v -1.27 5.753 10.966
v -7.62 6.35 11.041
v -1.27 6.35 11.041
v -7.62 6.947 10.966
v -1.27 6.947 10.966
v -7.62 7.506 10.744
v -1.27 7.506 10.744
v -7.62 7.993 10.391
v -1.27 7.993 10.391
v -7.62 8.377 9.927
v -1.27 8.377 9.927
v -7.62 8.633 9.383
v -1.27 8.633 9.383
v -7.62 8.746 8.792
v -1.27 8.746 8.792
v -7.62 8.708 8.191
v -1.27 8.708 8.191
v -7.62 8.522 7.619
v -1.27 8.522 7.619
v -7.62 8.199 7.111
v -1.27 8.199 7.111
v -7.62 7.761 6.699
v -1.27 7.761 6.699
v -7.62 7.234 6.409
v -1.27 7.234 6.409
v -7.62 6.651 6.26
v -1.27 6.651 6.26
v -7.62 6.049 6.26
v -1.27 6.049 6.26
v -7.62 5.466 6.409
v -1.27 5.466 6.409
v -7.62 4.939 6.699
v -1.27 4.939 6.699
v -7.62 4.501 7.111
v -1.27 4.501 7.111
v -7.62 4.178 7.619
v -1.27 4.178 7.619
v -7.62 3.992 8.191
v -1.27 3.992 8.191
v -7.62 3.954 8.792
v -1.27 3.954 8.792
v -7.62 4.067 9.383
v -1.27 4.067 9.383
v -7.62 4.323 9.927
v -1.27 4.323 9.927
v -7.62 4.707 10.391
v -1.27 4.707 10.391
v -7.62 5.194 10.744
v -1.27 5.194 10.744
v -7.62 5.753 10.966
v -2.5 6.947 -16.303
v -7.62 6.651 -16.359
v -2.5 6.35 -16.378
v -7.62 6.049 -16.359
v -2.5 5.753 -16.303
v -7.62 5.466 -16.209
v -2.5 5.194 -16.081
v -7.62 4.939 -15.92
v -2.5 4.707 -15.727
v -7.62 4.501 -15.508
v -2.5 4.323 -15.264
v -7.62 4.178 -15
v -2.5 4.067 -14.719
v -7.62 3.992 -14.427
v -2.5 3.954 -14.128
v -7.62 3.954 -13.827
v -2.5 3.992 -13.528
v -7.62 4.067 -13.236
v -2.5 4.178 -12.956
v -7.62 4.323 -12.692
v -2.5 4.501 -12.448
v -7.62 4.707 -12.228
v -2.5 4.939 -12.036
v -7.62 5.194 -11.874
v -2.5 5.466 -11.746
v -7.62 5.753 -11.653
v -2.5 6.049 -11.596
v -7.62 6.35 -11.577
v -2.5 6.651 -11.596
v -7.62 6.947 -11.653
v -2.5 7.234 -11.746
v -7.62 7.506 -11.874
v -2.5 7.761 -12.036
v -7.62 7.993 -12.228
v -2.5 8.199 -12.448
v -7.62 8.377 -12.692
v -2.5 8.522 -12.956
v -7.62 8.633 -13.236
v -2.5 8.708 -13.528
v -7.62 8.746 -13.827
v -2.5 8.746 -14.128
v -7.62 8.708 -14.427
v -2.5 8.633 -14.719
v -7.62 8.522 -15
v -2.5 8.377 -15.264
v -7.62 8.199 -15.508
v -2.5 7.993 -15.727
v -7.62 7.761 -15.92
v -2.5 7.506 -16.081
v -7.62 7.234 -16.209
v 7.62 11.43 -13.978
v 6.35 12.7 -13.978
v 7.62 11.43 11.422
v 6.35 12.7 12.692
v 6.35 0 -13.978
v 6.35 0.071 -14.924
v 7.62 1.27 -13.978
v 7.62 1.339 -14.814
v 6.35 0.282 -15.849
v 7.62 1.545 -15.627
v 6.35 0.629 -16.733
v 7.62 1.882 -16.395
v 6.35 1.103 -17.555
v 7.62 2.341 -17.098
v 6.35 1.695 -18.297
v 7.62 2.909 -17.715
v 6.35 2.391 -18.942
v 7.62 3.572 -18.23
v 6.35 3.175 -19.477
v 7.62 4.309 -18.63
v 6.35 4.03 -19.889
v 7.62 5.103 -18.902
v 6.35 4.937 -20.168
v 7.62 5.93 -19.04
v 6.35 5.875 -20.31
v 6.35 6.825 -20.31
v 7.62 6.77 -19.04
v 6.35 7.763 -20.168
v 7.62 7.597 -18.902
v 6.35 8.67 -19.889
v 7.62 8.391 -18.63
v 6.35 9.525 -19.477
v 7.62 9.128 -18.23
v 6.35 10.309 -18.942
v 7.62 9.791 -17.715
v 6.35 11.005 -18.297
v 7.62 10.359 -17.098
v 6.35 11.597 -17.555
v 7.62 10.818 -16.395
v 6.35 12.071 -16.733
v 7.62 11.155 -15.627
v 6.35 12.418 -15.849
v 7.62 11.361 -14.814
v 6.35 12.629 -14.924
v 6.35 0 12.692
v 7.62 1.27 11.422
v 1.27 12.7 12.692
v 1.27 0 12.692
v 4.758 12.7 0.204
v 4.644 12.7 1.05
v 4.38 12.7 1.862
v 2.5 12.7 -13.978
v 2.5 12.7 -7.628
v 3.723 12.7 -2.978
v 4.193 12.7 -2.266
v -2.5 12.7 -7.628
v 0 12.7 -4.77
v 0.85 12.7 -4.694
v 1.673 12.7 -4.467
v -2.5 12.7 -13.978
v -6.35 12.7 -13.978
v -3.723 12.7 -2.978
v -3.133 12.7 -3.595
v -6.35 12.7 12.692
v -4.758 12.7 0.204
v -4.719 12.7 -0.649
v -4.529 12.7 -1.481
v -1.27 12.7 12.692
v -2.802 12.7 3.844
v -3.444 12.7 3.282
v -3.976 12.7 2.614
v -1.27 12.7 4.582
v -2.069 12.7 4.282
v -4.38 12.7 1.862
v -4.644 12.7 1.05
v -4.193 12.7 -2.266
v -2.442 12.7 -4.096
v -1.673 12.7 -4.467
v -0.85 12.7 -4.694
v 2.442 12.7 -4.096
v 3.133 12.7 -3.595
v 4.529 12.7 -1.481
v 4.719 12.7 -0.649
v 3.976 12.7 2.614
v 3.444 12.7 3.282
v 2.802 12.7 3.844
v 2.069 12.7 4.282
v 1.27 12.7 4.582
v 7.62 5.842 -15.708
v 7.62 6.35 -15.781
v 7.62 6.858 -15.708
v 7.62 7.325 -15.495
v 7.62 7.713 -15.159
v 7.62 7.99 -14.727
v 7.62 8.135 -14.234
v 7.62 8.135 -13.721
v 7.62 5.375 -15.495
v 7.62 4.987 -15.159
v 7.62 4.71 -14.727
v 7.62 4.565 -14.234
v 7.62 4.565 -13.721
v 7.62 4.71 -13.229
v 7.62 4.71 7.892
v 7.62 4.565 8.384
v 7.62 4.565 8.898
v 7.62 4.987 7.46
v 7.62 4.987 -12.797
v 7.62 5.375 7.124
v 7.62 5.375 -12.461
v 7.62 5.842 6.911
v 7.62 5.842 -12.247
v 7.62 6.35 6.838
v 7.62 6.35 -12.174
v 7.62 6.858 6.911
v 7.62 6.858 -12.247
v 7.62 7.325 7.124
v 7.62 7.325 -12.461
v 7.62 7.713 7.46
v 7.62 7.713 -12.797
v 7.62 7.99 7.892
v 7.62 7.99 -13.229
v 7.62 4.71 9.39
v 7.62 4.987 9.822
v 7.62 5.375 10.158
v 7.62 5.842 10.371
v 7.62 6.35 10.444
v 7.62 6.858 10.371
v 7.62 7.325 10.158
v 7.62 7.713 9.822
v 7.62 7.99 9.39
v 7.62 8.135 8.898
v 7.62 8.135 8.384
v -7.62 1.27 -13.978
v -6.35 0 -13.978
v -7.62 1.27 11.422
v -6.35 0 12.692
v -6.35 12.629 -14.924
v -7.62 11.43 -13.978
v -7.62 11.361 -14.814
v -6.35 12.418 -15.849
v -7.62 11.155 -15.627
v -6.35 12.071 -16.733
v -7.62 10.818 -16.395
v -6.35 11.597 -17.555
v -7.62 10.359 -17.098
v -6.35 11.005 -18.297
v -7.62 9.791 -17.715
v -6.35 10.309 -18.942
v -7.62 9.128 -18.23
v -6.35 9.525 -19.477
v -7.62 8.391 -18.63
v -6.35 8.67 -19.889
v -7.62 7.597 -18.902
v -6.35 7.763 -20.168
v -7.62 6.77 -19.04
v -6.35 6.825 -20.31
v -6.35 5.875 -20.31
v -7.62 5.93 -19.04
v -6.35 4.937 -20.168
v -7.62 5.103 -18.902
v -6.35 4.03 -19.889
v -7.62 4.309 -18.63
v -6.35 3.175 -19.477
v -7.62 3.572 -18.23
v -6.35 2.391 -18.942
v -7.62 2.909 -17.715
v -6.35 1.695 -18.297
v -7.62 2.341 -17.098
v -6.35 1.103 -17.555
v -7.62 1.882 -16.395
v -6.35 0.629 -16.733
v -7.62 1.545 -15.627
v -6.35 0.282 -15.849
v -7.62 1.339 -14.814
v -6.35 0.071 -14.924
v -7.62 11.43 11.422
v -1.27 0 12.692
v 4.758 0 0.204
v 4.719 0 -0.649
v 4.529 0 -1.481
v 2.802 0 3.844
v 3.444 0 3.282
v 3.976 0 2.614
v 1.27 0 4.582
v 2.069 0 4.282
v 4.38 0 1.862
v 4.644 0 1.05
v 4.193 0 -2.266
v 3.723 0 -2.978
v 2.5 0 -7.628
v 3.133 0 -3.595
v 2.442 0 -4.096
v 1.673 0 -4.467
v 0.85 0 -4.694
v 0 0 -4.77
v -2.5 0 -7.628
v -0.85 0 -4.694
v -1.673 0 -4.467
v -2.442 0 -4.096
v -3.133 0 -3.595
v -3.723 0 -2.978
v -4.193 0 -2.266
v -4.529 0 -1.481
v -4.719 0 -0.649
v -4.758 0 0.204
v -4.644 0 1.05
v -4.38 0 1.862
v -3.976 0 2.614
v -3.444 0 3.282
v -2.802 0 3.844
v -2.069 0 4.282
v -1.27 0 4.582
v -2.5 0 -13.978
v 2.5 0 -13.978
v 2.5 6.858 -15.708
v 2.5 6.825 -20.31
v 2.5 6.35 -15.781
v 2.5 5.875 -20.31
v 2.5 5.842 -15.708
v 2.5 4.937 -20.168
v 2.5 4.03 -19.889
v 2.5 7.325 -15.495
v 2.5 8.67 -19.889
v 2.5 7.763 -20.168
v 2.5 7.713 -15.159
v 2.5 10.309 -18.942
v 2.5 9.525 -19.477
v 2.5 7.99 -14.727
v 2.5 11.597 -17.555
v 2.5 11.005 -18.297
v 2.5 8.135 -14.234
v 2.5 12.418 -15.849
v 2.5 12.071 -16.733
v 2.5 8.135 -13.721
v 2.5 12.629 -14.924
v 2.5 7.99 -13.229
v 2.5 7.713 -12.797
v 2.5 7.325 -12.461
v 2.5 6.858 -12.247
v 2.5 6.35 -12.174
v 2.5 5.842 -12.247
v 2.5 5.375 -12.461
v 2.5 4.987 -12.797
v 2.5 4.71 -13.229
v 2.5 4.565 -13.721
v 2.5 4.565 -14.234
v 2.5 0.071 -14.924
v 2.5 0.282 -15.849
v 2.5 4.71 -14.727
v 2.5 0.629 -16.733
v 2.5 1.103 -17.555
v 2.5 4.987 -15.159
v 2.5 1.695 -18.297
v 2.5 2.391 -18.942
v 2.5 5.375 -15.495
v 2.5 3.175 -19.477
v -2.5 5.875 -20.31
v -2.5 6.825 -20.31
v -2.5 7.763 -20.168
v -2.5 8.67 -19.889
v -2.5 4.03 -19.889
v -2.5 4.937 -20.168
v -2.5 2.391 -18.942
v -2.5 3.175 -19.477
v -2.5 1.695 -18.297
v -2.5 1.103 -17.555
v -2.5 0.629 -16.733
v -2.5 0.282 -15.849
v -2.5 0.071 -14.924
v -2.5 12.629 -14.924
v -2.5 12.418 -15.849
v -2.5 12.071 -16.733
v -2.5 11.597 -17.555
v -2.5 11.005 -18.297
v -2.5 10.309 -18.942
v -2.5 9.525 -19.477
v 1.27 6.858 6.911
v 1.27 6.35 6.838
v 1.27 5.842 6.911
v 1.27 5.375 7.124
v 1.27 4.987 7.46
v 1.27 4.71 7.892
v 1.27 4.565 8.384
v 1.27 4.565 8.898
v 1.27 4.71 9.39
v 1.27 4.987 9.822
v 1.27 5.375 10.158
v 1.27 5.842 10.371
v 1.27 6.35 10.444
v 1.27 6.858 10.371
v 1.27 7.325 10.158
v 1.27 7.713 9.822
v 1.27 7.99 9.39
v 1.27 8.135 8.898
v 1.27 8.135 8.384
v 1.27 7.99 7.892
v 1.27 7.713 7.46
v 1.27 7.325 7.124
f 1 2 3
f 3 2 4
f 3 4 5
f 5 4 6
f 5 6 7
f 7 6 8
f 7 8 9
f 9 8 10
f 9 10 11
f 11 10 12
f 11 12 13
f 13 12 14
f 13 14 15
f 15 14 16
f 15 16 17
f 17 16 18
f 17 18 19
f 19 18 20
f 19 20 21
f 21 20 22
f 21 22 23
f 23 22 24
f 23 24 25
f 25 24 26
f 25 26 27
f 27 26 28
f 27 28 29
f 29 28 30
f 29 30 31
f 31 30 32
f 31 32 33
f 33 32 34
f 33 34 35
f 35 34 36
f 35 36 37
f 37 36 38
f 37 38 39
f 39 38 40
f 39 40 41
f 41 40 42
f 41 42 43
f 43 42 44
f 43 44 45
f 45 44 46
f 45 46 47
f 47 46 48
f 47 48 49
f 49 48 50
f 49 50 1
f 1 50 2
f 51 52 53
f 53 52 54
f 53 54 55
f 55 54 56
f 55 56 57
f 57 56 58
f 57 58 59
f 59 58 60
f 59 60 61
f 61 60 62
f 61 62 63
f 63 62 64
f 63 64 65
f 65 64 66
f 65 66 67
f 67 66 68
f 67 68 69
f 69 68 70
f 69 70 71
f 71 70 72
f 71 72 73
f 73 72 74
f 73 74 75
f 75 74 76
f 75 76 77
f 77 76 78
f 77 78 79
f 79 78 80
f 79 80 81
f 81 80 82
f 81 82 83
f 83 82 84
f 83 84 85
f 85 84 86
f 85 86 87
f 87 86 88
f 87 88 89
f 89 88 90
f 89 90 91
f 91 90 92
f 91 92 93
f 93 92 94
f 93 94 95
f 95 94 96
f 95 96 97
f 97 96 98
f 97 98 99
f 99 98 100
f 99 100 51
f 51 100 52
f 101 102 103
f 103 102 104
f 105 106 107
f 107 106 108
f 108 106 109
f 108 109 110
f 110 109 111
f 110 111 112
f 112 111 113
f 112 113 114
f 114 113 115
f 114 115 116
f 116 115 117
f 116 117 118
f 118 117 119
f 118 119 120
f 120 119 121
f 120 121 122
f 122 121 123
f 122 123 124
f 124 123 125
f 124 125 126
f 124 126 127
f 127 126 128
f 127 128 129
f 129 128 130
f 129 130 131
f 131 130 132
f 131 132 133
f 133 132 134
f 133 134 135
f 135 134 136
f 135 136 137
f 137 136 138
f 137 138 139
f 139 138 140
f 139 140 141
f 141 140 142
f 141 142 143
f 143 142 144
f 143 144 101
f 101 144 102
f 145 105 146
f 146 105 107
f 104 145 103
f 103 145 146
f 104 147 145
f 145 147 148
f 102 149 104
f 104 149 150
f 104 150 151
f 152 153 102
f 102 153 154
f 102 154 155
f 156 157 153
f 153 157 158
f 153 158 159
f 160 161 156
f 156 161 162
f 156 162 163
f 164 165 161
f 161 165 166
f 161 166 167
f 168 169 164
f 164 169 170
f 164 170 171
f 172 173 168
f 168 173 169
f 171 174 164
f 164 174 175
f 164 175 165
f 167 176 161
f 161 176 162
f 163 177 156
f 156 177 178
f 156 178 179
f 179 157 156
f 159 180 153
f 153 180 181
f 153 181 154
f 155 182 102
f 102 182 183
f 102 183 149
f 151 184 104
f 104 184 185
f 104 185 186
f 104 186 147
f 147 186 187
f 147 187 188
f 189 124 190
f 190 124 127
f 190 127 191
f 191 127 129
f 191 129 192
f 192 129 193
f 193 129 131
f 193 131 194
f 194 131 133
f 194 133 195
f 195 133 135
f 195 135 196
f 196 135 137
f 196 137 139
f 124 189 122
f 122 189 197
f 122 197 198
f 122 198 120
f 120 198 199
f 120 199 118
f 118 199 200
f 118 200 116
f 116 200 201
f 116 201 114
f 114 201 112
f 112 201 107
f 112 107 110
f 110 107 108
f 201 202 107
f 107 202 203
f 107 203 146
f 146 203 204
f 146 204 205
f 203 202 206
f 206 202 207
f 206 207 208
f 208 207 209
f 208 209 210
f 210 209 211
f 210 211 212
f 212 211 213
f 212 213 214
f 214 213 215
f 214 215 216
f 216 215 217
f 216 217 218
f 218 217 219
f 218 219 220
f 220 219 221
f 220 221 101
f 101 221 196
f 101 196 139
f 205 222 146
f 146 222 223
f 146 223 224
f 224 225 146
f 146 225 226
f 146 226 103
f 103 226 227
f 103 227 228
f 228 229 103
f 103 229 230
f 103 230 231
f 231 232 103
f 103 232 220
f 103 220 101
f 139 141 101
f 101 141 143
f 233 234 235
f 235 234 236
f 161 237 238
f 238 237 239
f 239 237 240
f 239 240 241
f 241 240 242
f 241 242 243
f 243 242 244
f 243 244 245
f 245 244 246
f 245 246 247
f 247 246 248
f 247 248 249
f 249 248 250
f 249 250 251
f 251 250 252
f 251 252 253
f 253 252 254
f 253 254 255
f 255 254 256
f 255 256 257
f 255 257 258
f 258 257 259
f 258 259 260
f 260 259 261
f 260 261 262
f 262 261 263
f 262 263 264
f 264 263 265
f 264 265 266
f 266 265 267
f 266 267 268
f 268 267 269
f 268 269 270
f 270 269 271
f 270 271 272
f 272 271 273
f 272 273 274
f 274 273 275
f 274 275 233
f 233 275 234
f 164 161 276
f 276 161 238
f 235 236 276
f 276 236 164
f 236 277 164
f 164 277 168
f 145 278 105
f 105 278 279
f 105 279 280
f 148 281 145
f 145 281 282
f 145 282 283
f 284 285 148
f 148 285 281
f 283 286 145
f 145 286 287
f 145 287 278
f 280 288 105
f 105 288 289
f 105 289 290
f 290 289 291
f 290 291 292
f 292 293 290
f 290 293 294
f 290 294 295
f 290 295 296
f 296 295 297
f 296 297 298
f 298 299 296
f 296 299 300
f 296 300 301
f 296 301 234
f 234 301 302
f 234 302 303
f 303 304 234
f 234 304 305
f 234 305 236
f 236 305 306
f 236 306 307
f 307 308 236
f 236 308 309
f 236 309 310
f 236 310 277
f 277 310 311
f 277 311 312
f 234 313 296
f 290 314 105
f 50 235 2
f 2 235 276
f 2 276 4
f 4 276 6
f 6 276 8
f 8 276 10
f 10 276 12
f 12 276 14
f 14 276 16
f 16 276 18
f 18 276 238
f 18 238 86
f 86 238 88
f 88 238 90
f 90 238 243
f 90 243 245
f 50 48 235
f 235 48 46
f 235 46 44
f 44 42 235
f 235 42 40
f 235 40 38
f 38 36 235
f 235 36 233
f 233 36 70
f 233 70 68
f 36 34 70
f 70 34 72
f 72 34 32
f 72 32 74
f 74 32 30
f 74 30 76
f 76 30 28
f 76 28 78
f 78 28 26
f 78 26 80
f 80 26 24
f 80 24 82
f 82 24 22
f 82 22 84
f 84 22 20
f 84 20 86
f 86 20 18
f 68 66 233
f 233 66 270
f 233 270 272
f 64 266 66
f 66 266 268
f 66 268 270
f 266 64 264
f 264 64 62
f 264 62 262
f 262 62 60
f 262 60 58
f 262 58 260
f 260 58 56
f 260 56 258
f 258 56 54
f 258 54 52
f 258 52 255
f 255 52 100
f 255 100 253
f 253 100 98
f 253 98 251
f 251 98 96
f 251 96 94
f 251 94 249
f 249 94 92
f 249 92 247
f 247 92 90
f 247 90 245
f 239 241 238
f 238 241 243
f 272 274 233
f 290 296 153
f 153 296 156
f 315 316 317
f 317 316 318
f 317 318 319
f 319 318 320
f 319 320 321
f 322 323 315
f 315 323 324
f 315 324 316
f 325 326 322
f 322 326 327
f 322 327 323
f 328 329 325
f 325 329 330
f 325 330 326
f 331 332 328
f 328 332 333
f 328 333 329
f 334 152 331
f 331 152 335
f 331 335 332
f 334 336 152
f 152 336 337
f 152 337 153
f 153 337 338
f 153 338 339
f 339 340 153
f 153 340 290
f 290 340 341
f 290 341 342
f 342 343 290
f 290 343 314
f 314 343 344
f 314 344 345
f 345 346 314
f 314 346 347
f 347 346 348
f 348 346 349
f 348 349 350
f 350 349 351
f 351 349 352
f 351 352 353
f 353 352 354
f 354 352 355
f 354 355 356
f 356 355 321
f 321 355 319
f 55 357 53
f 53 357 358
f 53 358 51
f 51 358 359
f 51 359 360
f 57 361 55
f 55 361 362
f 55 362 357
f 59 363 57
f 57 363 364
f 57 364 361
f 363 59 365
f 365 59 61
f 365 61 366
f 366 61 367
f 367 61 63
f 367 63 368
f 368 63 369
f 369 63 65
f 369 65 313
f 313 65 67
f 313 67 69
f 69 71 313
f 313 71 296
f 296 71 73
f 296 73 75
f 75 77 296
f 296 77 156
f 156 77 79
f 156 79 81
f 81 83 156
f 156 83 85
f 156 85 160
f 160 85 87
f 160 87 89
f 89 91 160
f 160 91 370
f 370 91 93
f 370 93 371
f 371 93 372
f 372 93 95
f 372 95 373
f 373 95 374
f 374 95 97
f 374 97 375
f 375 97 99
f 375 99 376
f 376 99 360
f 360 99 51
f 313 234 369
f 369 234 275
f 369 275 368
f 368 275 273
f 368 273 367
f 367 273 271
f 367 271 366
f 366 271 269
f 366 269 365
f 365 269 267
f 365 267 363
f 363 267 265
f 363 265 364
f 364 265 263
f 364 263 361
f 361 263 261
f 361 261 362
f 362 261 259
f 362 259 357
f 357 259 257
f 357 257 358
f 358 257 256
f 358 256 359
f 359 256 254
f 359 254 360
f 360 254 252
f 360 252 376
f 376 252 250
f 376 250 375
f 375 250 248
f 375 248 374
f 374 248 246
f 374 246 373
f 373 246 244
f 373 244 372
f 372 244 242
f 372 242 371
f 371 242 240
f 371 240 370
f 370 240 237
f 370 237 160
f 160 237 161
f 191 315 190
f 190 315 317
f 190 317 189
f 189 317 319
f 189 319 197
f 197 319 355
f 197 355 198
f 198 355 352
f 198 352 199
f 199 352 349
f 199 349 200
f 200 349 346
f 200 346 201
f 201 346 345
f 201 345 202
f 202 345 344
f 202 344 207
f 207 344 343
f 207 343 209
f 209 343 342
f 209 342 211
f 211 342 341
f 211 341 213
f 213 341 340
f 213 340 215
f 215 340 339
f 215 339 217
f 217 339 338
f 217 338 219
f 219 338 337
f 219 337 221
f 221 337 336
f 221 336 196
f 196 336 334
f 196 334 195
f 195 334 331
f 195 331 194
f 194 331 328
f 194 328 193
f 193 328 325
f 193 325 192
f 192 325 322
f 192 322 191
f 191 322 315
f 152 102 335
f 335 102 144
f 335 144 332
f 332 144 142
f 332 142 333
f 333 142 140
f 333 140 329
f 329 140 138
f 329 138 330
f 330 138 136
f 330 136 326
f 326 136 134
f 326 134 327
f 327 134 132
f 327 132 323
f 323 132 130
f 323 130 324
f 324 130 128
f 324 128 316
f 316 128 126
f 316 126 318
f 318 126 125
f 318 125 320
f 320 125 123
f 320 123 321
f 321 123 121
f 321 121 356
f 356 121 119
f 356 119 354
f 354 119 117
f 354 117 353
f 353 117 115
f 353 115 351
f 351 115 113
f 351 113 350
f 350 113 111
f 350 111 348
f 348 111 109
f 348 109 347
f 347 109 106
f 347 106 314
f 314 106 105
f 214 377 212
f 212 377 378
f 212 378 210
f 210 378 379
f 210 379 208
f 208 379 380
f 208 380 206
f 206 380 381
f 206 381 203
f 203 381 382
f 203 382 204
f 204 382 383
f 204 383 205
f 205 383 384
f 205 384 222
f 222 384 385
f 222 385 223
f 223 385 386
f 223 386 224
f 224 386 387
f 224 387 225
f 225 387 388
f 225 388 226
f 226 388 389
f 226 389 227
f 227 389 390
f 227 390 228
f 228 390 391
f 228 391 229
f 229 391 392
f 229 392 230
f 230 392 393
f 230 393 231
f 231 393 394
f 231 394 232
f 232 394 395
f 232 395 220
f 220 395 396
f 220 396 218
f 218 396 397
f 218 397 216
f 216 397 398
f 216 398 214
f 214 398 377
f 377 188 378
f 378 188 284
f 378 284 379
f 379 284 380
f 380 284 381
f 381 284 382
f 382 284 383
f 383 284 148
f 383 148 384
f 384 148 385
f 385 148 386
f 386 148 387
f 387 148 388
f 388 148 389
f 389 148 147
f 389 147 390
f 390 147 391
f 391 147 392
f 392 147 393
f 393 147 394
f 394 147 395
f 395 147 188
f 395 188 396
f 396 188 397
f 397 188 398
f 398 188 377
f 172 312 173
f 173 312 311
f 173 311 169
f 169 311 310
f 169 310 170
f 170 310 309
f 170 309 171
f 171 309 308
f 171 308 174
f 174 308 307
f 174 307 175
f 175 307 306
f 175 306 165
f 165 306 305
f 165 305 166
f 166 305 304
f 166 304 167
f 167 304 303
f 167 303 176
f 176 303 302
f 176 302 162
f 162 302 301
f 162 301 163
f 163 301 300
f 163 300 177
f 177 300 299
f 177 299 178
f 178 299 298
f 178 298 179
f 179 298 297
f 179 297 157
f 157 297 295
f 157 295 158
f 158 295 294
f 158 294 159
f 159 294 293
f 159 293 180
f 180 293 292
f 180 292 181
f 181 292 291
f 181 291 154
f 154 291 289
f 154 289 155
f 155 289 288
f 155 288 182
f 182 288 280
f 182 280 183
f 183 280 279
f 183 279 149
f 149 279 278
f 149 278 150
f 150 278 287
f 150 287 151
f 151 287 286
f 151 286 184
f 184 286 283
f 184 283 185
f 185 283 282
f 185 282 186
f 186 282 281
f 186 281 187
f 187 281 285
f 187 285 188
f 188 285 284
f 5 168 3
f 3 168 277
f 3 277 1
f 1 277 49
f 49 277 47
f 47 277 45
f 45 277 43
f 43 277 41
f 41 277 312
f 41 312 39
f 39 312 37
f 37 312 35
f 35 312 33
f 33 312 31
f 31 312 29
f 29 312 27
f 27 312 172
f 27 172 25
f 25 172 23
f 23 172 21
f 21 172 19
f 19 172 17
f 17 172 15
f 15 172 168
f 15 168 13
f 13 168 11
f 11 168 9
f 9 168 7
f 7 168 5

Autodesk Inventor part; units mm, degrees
ref_plane "YZ Plane" through (0, 0, 0) normal (1, 0, 0) x (0, 1, 0)
ref_plane "XZ Plane" through (0, 0, 0) normal (0, 1, 0) x (-1, 0, 0)
ref_plane "XY Plane" through (0, 0, 0) normal (0, 0, 1) x (1, 0, 0)
sketch "Sketch1" plane through (0, 0, 0) normal (0, 1, 0) x (-1, 0, 0)
  circle A0 centre (0, 0) radius 4.7625
  line L0 (7.62, -20.32) -> (-7.62, -20.32)
  line L1 (-7.62, -20.32) -> (-7.62, 12.7)
  line L2 (-7.62, 12.7) -> (7.62, 12.7)
  line L3 (7.62, 12.7) -> (7.62, -20.32)
  line L4 (1.27, 4.59) -> (1.27, 12.7)
  line L5 (-1.27, 4.59) -> (-1.27, 12.7)
  line L6 (0, 4.7625) -> (0, 12.7) construction
  dimension "d0" = 9.525
  dimension "d1" = 7.62
  dimension "d2" = 7.62
  dimension "d3" = 20.32
  dimension "d4" = 12.7
  dimension "d6" = 1.27
  dimension "d7" = 1.27
extrude "Extrusion1" add sketch "Sketch1" along normal blind 12.7 contours A0 L4 L2 L3 L0 L1 L5
sketch "Sketch2" plane through (-7.62, 0, -20.32) normal (-1, 0, 0) x (0, 0, 1)
  line L0 (0, 0) -> (33.02, 0) projected
  line L1 (33.02, 0) -> (33.02, 12.7) projected
  line L2 (0, 12.7) -> (33.02, 12.7) projected
  line L3 (0, 0) -> (0, 12.7) projected
  line L4 (0, 6.35) -> (33.02, 6.35) construction
  circle A0 centre (28.9687, 6.35) radius 1.75
  circle A1 centre (6.35, 6.35) radius 1.5
  point P0 (20.32, 0)
  dimension "d10" = 3.5
  dimension "d11" = 4.0513
  dimension "d20" = 3
  dimension "d21" = 6.35
hole "Hole1" at (-7.62, 6.35, 8.6487) at (-7.62, 6.35, -13.97) direction (1, 0, 0) diameter 3.6068 end through all clearance for "Flat Head Machine Screw" size "M3" standard "Ansi Metric M Profile"
fillet "Fillet1" radius 6.35 2 edges at (0, 12.7, -20.32) (0, 0, -20.32)
sketch "Sketch3" plane through (0, 12.7, 0) normal (0, 1, 0) x (1, 0, 0)
  line L0 (-7.62, 13.97) -> (7.62, 13.97) projected
  line L1 (-7.62, 13.97) -> (-7.62, -12.7) projected
  line L2 (-7.62, -12.7) -> (-1.27, -12.7) projected
  line L3 (-1.27, -12.7) -> (-1.27, -4.59) projected
  arc A0 (1.27, -4.59) -> (-1.27, -4.59) centre (0, 0) ccw projected
  line L4 (1.27, -4.59) -> (1.27, -12.7) projected
  line L5 (1.27, -12.7) -> (7.62, -12.7) projected
  line L6 (7.62, -12.7) -> (7.62, 13.97) projected
  line L7 (0, 4.7625) -> (0, 20.32) construction
  line L8 (7.62, 20.32) -> (-7.62, 20.32) projected
  line L9 (2.5, 4.0536) -> (2.5, 20.32)
  line L10 (-2.5, 4.0536) -> (-2.5, 20.32)
  line L11 (2.5, 7.62) -> (-2.5, 7.62)
  dimension "d22" = 2.5
  dimension "d23" = 2.5
  dimension "d26" = 12.7
extrude "Extrusion2" cut sketch "Sketch3" against normal through all contours L10 L8 L9 L0 | L0 L9 L11 L10
chamfer "Chamfer1" distance 1.27 angle 45 8 edges at (-7.62, 0, -0.6352) (-7.62, 10.8403, -18.4603) (-7.62, 12.7, -0.6352) (7.62, 12.7, -0.6353) (7.62, 10.8403, -18.4603) (7.62, 0, -0.6353) (-7.62, 6.35, 12.7) (7.62, 6.35, 12.7)
hole "Hole2" at (-7.62, 6.35, -13.97) at (-7.62, 6.35, 8.6487) direction (1, 0, 0) diameter 4.8006 depth 6.35 clearance for "Flat Head Machine Screw" size "M4" standard "Ansi Metric M Profile"
equation "\"d2\" = d1"
equation "\"d7\" = d6"
equation "\"d23\" = d22"
